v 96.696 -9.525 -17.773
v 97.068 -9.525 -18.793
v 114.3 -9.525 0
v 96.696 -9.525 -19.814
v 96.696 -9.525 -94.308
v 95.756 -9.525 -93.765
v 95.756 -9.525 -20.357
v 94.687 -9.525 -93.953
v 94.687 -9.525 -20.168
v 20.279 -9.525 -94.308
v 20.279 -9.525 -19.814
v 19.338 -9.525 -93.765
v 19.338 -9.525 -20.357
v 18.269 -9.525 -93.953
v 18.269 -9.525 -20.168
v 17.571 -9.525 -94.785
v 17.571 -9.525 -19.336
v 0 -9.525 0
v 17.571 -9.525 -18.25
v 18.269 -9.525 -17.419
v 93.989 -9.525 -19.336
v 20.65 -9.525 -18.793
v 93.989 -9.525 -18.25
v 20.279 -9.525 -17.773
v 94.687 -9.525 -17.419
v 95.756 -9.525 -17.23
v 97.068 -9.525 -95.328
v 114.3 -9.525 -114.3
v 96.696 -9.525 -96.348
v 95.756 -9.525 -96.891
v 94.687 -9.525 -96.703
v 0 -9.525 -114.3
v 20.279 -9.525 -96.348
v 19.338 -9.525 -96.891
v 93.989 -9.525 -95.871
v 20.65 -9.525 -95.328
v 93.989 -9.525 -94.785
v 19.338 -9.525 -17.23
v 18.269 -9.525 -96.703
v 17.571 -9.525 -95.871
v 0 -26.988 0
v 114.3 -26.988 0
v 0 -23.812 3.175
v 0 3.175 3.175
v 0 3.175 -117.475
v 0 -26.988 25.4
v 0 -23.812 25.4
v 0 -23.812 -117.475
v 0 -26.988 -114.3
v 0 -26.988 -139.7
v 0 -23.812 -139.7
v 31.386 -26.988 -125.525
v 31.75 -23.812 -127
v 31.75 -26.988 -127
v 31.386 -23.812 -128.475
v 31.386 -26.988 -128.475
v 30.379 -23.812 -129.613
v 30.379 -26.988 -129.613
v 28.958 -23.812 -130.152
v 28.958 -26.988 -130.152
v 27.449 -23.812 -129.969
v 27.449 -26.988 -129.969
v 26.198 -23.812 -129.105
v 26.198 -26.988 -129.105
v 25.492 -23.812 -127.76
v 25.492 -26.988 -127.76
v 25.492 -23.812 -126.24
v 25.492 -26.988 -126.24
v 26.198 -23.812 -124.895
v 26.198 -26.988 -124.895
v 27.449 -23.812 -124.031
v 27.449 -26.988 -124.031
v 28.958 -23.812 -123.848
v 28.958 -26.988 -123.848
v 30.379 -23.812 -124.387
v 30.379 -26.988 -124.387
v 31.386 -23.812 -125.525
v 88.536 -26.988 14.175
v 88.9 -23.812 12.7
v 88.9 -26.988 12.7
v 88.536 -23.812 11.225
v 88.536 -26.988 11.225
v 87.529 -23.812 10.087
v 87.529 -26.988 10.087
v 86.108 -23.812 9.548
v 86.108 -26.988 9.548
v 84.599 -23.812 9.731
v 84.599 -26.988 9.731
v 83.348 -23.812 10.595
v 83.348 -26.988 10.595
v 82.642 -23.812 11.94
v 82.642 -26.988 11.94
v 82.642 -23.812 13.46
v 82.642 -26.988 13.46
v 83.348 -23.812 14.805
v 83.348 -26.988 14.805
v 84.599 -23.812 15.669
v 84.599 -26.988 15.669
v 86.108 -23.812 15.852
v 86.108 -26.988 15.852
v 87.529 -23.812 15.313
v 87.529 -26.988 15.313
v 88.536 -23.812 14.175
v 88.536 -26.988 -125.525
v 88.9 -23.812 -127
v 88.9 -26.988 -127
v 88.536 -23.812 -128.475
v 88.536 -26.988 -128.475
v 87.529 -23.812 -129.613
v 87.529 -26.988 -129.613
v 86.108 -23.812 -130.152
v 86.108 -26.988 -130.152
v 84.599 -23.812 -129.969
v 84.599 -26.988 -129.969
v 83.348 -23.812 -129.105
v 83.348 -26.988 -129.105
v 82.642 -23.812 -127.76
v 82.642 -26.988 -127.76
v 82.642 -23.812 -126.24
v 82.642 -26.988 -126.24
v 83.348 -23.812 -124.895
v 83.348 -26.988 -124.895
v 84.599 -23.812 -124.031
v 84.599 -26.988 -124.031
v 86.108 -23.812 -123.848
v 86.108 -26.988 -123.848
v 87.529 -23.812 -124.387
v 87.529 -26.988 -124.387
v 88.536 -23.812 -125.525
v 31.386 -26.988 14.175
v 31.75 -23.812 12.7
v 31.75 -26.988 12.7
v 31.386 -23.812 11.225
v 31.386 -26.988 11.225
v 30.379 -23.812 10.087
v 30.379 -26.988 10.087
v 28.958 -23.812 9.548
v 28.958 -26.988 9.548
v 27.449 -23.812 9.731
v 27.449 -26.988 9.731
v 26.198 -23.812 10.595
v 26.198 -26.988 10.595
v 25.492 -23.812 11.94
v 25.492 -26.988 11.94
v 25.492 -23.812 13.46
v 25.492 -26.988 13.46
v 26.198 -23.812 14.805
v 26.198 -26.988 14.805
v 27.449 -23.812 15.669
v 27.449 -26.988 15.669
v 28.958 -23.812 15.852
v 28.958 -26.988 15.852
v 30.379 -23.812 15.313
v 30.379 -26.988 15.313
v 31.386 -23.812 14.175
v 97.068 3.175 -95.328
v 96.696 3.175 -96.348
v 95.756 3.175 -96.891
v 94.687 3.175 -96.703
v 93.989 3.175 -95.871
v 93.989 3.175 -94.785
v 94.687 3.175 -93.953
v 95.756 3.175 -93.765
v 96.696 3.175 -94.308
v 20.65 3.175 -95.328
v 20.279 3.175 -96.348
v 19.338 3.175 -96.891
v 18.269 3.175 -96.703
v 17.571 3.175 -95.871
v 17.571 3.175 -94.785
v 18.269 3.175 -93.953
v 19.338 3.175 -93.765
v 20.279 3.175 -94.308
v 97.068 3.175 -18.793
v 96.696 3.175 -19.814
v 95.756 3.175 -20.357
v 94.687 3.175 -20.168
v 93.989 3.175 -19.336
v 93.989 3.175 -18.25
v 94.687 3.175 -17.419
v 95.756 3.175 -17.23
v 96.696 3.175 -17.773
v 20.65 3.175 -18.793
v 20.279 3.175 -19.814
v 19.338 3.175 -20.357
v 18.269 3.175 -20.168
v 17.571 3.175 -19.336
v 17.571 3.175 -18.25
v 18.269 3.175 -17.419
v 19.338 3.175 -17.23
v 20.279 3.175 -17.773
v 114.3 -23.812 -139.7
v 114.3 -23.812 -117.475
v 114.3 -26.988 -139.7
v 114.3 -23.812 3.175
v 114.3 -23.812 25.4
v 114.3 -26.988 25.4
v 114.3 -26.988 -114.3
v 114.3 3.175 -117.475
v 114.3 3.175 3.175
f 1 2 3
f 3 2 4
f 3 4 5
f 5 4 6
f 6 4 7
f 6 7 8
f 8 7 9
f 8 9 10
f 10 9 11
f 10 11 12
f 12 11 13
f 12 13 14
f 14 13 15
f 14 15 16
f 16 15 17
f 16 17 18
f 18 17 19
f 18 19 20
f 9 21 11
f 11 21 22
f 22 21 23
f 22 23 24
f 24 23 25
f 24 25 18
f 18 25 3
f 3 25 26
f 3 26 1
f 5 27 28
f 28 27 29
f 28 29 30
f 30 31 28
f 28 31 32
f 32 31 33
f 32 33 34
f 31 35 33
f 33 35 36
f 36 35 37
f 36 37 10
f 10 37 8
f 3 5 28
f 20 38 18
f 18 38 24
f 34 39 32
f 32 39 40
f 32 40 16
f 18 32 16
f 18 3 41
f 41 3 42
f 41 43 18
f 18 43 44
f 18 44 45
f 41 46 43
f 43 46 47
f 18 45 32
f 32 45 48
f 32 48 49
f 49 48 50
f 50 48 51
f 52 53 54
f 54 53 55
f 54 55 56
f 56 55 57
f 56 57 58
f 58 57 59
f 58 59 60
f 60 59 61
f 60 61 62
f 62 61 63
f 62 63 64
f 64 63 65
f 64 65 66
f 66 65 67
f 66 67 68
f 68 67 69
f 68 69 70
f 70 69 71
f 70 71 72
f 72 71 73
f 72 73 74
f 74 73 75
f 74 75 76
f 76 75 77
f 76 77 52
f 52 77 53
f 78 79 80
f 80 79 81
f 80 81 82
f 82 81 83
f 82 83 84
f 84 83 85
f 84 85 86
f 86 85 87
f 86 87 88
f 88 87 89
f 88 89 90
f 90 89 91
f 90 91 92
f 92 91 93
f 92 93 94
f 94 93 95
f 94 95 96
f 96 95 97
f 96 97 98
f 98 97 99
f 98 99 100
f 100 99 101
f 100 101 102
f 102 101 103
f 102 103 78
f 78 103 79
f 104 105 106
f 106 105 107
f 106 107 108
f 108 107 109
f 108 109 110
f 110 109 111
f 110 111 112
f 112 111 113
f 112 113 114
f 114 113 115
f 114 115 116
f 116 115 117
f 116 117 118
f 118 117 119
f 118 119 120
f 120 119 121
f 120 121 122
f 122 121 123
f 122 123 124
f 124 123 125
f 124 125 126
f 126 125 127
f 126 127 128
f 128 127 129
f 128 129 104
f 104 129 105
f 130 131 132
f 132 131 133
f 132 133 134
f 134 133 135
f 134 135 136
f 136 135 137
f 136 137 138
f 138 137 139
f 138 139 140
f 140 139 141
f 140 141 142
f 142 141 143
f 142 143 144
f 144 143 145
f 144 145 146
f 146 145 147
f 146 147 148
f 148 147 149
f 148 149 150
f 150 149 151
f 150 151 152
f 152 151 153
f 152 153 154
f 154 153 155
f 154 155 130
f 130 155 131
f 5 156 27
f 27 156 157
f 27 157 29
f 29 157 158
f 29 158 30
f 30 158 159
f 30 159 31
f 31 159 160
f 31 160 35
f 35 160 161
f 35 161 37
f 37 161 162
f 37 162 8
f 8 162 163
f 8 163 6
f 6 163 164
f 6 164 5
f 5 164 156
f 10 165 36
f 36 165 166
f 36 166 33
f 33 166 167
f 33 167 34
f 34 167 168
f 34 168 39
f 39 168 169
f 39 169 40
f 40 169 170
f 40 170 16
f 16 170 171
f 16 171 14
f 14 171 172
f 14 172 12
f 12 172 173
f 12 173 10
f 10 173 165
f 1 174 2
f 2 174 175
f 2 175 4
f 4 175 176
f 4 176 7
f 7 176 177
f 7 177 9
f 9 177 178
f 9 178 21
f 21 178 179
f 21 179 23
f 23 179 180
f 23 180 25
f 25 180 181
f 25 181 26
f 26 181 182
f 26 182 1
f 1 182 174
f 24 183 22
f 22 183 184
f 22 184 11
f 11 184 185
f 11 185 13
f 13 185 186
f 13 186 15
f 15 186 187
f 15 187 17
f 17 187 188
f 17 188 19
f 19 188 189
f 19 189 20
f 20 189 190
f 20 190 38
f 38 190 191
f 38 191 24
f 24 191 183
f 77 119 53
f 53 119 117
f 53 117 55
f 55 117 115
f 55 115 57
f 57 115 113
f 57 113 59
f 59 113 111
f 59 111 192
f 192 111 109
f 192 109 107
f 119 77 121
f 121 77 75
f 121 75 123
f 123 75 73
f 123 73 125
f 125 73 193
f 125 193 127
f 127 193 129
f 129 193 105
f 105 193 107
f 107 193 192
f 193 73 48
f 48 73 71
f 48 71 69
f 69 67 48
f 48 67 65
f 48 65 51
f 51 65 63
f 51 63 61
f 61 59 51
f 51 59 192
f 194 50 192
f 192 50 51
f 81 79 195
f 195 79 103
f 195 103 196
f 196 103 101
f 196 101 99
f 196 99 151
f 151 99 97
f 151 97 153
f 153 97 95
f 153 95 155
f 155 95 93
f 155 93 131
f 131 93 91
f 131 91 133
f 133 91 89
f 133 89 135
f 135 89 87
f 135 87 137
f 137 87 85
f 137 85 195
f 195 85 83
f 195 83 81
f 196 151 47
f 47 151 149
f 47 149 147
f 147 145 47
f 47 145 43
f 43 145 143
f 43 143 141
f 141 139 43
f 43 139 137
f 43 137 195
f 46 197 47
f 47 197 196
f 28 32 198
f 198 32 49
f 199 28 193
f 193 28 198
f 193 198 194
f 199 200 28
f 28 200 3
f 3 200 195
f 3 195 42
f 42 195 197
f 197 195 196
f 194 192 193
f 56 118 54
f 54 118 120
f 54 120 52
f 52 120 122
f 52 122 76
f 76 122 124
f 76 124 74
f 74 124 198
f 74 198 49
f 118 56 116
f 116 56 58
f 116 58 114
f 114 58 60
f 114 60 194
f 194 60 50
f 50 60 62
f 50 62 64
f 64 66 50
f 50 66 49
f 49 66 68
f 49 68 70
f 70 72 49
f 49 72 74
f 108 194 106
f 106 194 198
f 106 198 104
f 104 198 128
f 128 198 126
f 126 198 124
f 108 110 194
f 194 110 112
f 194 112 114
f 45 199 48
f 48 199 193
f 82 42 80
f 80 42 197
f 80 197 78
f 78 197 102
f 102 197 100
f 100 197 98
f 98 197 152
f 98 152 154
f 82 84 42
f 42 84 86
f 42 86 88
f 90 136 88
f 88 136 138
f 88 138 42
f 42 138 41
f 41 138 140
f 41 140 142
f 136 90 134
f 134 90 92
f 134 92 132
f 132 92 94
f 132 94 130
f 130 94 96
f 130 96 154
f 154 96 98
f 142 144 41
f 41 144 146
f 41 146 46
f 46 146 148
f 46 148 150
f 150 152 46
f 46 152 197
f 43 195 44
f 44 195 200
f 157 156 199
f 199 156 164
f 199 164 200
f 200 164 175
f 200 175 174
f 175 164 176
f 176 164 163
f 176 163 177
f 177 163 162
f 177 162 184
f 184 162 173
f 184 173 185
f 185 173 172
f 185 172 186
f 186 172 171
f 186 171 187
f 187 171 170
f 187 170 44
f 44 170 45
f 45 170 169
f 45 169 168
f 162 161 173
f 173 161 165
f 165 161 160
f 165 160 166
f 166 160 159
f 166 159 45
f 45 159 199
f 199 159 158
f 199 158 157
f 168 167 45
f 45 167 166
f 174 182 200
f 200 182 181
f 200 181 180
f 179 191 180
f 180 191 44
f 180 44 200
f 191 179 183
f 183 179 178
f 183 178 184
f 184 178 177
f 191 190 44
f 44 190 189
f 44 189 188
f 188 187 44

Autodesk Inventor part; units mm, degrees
ref_plane "YZ Plane" through (0, 0, 0) normal (1, 0, 0) x (0, 1, 0)
ref_plane "XZ Plane" through (0, 0, 0) normal (0, 1, 0) x (-1, 0, 0)
ref_plane "XY Plane" through (0, 0, 0) normal (0, 0, 1) x (1, 0, 0)
sketch "Sketch1" plane through (0, 0, 0) normal (0, 1, 0) x (-1, 0, 0)
  line L0 (0, 0) -> (-114.3, 0)
  line L1 (-114.3, 0) -> (-114.3, -114.3)
  line L2 (-114.3, -114.3) -> (0, -114.3)
  line L3 (0, -114.3) -> (0, 0)
  dimension "d0" = 114.3
  dimension "d1" = 114.3
extrude "Extrusion1" add sketch "Sketch1" along normal blind 3.175
sketch "Sketch2" plane through (0, 0, 0) normal (0, 0, 1) x (1, 0, 0)
  line L0 (114.3, 3.175) -> (0, 3.175) projected
  line L1 (0, 3.175) -> (114.3, 3.175)
  line L2 (0, 0) -> (0, 3.175) projected
  line L3 (0, 3.175) -> (114.3, 3.175)
  line L4 (114.3, 3.175) -> (114.3, -26.9875)
  line L5 (114.3, -26.9875) -> (0, -26.9875)
  line L6 (0, -26.9875) -> (0, 3.175)
  dimension "d14" = 30.1625
extrude "Extrusion2" add sketch "Sketch2" along normal blind 3.175
sketch "Sketch5" plane through (114.3, 0, -114.3) normal (0, 0, -1) x (-1, 0, 0)
  line L0 (114.3, 3.175) -> (114.3, -26.9875) projected
  line L1 (0, 3.175) -> (114.3, 3.175)
  line L2 (114.3, 3.175) -> (114.3, -26.9875)
  line L3 (114.3, -26.9875) -> (0, -26.9875)
  line L4 (0, -26.9875) -> (0, 3.175)
  point P0 (114.3, 0)
extrude "Extrusion5" add sketch "Sketch5" along normal blind 3.175
sketch "Sketch6" plane through (0, -26.9875, -114.3) normal (0, -1, 0) x (1, 0, 0)
  line L0 (114.3, 114.3) -> (114.3, 0) projected
  line L1 (114.3, 0) -> (0, 0)
  line L2 (0, 0) -> (0, -25.4)
  line L3 (0, -25.4) -> (114.3, -25.4)
  line L4 (114.3, -25.4) -> (114.3, 0)
  line L5 (0, 114.3) -> (114.3, 114.3) projected
  line L6 (114.3, 114.3) -> (0, 114.3)
  line L7 (0, 114.3) -> (0, 139.7)
  line L8 (0, 139.7) -> (114.3, 139.7)
  line L9 (114.3, 139.7) -> (114.3, 114.3)
  dimension "d17" = 25.4
  dimension "d18" = 25.4
extrude "Extrusion6" add sketch "Sketch6" against normal blind 3.175
sketch "Sketch7" plane through (0, -23.8125, -114.3) normal (0, 1, 0) x (1, 0, 0)
  point P0 (0, -114.3)
sketch "Sketch8" plane through (0, 3.175, 0) normal (0, 1, 0) x (1, 0, 0)
  circle A0 centre (19.0626, 18.7934) radius 1.5875
  circle A1 centre (19.0626, 95.3281) radius 1.5875
  circle A2 centre (95.4804, 18.7934) radius 1.5875
  circle A3 centre (95.4804, 95.3281) radius 1.5875
  point P0 (0, 0)
  dimension "d21" = 3.175
  dimension "d22" = 3.175
  dimension "d23" = 3.175
  dimension "d24" = 3.175
extrude "Extrusion7" cut sketch "Sketch8" against normal blind 12.7
sketch "Sketch9" plane through (0, -23.8125, -114.3) normal (0, 1, 0) x (1, 0, 0)
  line L0 (114.3, -139.7) -> (0, -139.7) construction
  line L1 (0, -139.7) -> (0, -127) construction
  line L2 (0, -114.3) -> (0, -139.7) construction
  line L3 (0, -139.7) -> (12.7, -139.7) construction
  line L4 (114.3, -114.3) -> (114.3, -139.7) construction
  line L5 (0, -127) -> (28.575, -127) construction
  line L6 (0, -127) -> (28.575, -127) construction
  line L7 (28.575, -127) -> (85.725, -127) construction
  circle A0 centre (28.575, -127) radius 3.175
  circle A1 centre (85.725, -127) radius 3.175
  line L8 (114.3, 25.4) -> (0, 25.4) construction
  line L9 (0, 25.4) -> (0, 12.7) construction
  line L10 (0, 12.7) -> (28.575, 12.7) construction
  line L11 (28.575, 12.7) -> (85.725, 12.7) construction
  line L12 (28.575, 12.7) -> (85.725, 12.7) construction
  circle A2 centre (28.575, 12.7) radius 3.175
  circle A3 centre (85.725, 12.7) radius 3.175
  dimension "d27" = 12.7
  dimension "d28" = 90
  dimension "d29" = 28.575
  dimension "d30" = 0
  dimension "d31" = 57.15
  dimension "d33" = 6.35
  dimension "d34" = 6.35
  dimension "d35" = 12.7
  dimension "d36" = 28.575
  dimension "d37" = 57.15
  dimension "d39" = 6.35
  dimension "d40" = 6.35
extrude "Extrusion8" cut sketch "Sketch9" against normal blind 3.175
sketch "Sketch10" plane through (0, 0, 0) normal (0, -1, 0) x (1, 0, 0)
  line L0 (0, 0) -> (114.3, 0) projected
  line L1 (114.3, -117.475) -> (0, -117.475) projected
  line L2 (114.3, 0) -> (0, 0)
  line L3 (0, 0) -> (0, -117.475)
  line L4 (0, -117.475) -> (114.3, -117.475)
  line L5 (114.3, -117.475) -> (114.3, 0)
  circle A0 centre (95.4804, -18.7934) radius 1.5875 projected
  circle A1 centre (95.4804, -18.7934) radius 1.5875
  circle A2 centre (95.4804, -95.3281) radius 1.5875 projected
  circle A3 centre (95.4804, -95.3281) radius 1.5875
  circle A4 centre (19.0626, -18.7934) radius 1.5875 projected
  circle A5 centre (19.0626, -18.7934) radius 1.5875
  circle A6 centre (19.0626, -95.3281) radius 1.5875 projected
  circle A7 centre (19.0626, -95.3281) radius 1.5875
  dimension "d45" = 3.175
  dimension "d46" = 3.175
  dimension "d47" = 3.175
  dimension "d48" = 3.175
extrude "Extrusion9" add sketch "Sketch10" along normal blind 9.525
properties part number "TurntableBase"
